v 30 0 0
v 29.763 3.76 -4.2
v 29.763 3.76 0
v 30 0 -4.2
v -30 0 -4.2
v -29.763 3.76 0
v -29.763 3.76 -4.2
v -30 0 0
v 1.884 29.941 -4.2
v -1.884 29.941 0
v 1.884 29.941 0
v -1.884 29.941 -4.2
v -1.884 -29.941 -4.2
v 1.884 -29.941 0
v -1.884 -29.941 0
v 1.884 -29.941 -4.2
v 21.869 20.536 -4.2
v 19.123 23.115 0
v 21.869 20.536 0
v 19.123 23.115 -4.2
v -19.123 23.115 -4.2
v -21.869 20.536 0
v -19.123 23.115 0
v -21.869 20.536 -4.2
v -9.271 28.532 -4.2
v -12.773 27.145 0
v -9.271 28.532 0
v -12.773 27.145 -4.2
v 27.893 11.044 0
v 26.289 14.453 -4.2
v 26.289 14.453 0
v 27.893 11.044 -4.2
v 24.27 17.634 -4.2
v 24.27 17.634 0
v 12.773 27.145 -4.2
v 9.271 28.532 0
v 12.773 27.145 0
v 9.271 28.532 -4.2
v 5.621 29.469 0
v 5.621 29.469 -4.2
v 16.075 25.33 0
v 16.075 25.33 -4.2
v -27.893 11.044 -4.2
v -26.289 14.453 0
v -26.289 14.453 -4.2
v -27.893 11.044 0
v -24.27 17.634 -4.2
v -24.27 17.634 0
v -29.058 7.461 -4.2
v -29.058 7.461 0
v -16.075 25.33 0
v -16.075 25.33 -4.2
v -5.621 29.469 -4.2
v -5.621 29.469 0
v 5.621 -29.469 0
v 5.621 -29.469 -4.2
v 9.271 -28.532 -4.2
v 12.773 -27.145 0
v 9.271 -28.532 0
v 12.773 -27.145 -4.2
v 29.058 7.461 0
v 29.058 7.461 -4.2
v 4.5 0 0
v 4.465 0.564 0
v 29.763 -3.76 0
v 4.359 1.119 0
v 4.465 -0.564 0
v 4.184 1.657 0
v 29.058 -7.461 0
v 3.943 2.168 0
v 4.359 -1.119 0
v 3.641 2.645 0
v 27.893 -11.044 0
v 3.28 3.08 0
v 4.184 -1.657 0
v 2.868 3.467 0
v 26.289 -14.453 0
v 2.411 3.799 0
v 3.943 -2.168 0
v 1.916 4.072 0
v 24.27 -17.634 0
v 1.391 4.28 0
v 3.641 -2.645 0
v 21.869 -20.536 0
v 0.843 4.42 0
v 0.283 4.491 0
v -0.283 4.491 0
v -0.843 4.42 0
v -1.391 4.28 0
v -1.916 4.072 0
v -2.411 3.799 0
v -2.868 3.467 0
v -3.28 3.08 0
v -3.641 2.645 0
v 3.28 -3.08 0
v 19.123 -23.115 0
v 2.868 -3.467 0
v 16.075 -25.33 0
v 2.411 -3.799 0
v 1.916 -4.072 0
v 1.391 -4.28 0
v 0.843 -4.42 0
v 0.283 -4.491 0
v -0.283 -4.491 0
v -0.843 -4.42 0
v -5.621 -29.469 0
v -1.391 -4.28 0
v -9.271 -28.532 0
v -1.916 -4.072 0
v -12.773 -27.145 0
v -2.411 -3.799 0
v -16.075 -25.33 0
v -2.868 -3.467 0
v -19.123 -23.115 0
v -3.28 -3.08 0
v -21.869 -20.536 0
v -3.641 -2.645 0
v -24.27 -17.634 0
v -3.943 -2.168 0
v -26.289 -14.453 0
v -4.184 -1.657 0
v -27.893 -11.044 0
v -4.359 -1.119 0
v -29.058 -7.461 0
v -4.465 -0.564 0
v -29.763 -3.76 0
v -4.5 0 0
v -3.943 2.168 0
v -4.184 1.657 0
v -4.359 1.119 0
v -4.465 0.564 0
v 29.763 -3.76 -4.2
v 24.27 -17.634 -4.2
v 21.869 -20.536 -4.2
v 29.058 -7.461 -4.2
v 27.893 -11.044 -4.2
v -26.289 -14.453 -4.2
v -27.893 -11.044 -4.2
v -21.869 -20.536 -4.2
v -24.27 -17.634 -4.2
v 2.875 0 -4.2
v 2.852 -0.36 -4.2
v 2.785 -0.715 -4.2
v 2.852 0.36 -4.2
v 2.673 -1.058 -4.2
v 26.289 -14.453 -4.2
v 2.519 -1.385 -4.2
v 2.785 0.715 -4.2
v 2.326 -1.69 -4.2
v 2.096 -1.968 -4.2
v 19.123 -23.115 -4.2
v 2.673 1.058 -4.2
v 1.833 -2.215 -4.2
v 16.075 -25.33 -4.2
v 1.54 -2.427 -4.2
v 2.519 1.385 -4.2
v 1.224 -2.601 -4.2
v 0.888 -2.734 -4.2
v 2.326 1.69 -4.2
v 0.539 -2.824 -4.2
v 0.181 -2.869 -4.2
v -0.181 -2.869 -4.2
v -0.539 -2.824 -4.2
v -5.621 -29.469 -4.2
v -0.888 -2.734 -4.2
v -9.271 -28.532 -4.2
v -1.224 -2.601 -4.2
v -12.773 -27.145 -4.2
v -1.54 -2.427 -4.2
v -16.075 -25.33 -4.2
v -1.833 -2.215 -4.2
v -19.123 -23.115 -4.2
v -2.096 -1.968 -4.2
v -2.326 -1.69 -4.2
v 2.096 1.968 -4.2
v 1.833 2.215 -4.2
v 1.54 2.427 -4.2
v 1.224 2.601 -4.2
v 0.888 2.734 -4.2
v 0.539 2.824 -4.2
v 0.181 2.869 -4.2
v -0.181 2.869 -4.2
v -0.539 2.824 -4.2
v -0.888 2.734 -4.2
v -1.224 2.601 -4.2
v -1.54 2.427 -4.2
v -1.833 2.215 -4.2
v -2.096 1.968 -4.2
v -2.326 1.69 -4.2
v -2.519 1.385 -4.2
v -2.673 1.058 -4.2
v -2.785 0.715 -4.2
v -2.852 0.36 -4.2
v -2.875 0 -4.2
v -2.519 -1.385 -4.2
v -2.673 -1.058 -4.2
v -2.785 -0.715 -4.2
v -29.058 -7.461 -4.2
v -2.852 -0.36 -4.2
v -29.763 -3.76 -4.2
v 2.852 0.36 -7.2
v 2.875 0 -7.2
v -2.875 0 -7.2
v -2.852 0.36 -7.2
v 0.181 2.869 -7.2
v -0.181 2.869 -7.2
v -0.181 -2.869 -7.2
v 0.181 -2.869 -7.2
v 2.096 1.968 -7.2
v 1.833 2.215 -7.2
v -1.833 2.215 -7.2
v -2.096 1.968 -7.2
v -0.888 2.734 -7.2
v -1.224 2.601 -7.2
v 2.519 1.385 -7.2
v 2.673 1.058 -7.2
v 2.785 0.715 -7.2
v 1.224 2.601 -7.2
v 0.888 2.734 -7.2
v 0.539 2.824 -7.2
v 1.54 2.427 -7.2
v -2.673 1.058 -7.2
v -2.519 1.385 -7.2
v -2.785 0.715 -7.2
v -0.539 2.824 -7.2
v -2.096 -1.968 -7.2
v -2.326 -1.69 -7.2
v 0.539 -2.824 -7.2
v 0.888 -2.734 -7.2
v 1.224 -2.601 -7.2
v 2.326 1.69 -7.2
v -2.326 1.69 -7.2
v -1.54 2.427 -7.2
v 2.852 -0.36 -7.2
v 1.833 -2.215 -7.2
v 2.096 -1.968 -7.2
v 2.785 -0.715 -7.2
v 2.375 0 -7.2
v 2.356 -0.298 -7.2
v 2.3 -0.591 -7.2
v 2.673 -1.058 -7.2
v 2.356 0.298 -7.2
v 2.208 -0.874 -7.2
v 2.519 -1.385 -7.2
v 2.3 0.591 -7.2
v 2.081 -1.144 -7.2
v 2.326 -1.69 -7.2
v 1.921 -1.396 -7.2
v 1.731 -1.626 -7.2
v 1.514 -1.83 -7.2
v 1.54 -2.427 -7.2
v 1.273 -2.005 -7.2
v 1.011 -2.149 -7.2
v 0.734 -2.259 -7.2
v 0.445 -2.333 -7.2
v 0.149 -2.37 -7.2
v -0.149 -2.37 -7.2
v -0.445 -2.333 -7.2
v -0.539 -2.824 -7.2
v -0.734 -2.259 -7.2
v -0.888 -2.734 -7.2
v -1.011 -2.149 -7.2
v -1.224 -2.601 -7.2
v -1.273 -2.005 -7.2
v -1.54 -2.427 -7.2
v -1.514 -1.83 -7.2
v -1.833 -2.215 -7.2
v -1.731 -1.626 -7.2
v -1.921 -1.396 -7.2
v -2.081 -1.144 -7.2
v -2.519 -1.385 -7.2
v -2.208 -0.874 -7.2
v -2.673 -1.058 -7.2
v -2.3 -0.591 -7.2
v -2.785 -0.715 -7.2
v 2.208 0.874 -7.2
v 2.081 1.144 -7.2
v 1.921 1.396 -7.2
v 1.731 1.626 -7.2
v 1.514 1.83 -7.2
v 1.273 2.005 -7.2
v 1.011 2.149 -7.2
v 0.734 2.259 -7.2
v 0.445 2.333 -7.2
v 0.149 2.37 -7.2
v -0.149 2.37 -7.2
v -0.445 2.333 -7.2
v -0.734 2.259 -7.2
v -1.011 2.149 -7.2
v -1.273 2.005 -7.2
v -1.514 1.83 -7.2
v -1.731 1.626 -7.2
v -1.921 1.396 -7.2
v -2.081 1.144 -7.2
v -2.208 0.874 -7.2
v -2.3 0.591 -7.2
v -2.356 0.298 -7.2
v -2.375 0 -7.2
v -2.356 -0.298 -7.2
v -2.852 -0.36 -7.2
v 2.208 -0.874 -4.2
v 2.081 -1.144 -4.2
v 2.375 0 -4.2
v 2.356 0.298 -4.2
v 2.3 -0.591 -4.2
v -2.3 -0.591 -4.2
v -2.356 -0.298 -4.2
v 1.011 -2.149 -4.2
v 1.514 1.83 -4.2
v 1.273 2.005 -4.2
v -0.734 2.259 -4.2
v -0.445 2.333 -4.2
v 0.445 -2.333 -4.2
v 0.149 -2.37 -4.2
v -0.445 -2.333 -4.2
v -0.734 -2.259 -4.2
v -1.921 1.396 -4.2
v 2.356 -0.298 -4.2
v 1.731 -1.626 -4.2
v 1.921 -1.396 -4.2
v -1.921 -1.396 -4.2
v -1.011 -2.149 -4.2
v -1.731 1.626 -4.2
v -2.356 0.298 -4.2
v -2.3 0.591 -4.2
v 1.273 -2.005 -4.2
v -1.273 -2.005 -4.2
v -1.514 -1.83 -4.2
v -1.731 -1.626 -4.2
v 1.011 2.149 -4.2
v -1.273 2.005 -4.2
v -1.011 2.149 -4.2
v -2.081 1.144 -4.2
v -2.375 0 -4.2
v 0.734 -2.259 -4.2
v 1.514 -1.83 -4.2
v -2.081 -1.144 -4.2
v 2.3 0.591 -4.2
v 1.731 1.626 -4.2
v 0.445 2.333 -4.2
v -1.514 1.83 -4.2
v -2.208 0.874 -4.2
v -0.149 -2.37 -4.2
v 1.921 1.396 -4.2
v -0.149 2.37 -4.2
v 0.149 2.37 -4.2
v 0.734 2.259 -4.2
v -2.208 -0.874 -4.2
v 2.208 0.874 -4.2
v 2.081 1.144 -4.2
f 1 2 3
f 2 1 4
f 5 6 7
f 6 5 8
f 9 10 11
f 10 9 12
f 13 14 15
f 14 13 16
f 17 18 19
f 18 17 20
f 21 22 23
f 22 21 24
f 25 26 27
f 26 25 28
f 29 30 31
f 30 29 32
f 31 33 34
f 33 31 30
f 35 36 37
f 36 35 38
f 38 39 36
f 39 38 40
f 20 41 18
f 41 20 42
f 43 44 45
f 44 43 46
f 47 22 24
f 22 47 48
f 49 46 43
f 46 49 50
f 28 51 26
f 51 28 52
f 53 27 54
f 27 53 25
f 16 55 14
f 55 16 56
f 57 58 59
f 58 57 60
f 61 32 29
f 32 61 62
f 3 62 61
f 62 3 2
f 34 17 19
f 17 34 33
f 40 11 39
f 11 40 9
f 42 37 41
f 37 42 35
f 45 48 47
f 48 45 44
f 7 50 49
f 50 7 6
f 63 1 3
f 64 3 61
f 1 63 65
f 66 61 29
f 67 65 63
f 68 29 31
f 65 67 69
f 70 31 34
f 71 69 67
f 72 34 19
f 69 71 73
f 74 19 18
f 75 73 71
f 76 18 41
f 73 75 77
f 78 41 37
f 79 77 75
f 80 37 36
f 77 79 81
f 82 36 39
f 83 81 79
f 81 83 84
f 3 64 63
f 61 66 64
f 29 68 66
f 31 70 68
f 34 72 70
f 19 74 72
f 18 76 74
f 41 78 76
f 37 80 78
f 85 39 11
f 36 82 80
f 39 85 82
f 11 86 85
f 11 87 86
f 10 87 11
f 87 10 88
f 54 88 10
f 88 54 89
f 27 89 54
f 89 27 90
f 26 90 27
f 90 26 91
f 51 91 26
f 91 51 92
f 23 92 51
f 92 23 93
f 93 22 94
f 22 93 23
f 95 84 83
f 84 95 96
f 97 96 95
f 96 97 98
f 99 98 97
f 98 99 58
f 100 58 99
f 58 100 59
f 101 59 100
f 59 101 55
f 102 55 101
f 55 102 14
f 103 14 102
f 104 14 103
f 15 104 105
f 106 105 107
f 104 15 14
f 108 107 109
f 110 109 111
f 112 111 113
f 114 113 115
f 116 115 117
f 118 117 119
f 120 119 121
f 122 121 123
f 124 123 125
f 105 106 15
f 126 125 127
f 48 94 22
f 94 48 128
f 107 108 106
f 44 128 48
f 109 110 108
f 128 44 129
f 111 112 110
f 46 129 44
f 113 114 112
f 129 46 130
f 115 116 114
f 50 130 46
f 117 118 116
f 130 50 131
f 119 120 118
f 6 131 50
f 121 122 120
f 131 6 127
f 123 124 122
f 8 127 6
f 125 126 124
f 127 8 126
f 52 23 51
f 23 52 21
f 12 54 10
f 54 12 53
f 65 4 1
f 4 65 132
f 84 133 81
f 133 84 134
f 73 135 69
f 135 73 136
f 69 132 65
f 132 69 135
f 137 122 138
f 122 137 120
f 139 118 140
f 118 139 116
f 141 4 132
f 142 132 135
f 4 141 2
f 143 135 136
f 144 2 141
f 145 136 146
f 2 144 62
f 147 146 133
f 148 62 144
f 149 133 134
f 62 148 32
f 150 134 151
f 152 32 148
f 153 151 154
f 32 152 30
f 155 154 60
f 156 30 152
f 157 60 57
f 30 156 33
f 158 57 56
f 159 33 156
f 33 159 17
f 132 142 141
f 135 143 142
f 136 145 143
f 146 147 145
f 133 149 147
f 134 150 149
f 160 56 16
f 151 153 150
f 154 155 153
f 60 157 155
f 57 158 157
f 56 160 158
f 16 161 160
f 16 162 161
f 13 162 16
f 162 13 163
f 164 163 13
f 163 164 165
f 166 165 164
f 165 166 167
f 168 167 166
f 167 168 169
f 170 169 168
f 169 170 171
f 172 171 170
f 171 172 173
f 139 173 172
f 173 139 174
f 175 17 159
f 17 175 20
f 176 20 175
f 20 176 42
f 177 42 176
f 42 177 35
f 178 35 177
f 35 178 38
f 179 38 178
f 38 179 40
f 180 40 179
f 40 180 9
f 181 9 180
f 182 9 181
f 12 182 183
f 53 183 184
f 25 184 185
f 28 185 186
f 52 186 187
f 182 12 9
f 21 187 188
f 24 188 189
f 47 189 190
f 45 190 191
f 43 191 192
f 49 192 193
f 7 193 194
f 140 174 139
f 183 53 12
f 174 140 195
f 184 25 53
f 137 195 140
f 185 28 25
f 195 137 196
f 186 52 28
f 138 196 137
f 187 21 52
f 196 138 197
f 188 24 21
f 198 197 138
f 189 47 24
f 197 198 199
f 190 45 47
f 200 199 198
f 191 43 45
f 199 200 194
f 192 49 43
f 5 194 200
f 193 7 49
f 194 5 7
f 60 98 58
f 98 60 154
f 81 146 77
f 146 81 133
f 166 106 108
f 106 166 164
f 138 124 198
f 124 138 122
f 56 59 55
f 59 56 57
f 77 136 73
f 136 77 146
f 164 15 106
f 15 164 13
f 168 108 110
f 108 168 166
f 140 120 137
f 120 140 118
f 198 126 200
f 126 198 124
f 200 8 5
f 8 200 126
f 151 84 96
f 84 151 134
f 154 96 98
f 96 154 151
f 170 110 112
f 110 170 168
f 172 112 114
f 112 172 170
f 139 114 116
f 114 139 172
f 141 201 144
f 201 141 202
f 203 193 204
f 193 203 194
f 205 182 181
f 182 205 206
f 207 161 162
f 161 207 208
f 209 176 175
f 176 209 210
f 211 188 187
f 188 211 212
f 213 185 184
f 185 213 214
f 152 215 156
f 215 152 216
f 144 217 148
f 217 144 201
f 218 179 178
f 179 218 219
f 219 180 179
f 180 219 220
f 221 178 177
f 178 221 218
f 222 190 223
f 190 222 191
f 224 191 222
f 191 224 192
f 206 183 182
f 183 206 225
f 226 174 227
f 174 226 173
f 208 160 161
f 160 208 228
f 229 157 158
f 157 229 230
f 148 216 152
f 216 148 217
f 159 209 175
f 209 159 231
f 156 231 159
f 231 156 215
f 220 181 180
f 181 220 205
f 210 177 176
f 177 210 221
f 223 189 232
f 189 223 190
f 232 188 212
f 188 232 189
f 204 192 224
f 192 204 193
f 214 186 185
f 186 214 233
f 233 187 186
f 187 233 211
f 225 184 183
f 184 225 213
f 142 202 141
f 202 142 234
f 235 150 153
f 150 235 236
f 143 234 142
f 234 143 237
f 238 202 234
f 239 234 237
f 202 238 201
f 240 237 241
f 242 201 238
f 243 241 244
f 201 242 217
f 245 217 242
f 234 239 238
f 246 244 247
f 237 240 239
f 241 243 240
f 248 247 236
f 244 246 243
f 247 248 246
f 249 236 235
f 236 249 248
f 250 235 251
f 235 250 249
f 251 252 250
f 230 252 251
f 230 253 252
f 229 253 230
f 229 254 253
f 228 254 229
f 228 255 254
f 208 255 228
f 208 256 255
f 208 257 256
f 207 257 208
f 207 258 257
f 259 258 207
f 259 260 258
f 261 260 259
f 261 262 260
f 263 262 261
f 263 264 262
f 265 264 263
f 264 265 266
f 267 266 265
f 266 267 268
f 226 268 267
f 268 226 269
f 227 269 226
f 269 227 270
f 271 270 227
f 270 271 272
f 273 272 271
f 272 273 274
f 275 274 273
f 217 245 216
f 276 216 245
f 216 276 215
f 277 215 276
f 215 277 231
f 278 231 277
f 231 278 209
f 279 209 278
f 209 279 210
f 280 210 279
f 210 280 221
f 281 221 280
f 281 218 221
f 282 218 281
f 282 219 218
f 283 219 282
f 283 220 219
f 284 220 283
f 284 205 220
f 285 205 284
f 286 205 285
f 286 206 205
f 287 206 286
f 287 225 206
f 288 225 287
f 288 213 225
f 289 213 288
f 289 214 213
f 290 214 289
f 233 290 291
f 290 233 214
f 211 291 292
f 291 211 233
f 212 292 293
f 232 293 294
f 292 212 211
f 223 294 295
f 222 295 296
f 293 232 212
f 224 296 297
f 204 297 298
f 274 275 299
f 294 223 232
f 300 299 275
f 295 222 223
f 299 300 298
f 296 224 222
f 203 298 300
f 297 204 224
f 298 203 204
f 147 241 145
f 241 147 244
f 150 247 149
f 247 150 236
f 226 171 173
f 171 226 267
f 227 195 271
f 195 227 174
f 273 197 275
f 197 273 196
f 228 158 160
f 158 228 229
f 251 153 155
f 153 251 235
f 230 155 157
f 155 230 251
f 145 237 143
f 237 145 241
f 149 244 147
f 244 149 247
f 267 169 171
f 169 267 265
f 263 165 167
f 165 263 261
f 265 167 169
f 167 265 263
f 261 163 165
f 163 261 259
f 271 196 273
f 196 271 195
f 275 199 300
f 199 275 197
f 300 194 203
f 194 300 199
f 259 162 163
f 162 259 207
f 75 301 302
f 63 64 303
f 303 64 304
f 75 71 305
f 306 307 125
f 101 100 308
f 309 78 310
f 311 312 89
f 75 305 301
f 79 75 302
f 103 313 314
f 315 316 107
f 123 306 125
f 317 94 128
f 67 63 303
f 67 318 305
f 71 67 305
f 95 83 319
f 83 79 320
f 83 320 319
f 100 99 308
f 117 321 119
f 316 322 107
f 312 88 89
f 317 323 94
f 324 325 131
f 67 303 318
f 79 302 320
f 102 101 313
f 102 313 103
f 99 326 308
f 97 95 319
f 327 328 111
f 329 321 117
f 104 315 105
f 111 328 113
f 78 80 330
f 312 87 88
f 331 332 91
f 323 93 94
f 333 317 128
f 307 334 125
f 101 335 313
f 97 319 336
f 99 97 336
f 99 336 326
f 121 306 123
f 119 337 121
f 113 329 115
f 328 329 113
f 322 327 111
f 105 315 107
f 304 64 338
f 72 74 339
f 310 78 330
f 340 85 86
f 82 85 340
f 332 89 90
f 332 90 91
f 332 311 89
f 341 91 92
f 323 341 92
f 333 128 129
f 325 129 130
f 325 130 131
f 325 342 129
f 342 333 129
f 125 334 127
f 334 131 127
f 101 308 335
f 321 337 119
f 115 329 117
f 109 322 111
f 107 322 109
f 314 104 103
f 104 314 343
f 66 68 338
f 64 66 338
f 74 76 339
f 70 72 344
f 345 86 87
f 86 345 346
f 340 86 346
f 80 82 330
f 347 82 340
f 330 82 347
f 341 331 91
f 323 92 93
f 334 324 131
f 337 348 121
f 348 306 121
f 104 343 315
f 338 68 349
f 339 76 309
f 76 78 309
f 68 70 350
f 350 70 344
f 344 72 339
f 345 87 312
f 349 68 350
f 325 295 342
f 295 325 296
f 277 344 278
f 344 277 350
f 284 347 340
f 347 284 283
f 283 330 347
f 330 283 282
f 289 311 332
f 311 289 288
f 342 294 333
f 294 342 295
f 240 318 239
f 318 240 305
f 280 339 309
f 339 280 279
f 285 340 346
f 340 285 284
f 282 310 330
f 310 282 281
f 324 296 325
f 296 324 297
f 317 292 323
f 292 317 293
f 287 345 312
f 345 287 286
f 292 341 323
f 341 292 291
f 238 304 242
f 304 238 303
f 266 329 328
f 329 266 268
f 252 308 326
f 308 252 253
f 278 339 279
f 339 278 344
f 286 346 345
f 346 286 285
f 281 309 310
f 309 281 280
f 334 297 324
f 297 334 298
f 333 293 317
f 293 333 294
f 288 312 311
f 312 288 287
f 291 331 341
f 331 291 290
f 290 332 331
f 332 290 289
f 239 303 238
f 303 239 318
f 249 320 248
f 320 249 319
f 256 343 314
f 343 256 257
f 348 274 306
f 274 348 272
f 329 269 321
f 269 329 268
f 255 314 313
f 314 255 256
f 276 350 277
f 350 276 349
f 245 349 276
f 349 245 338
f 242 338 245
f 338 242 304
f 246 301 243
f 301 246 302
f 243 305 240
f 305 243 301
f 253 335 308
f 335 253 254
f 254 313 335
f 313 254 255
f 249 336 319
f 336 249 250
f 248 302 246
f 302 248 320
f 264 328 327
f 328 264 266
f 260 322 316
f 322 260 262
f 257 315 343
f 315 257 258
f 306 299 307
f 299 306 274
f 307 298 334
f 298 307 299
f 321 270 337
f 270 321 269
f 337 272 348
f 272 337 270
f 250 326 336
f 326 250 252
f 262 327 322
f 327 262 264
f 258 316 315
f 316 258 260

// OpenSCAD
$fn = 50;

difference() {
	union() {
		translate(v = [0, 0, -4.2]) {
			cylinder(h = 4.2, r = 30.0);
		}
		#translate(v = [0, 0, -7.2]) {
			cylinder(h = 7.2, r = 2.875);
		}
	}
	union() {
		translate(v = [0, 0, 0]) {
			rotate(a = [0, 0, 0]) {
				difference() {
					union() {
						translate(v = [0, 0, -7.2]) {
							cylinder(h = 7.2, r = 2.25);
						}
						translate(v = [0, 0, -4.2]) {
							cylinder(h = 4.2, r1 = 2.375, r2 = 4.5);
						}
						translate(v = [0, 0, -7.2]) {
							cylinder(h = 7.2, r = 2.375);
						}
						translate(v = [0, 0, -7.2]) {
							cylinder(h = 7.2, r = 2.25);
						}
					}
					union();
				}
			}
		}
	}
}
